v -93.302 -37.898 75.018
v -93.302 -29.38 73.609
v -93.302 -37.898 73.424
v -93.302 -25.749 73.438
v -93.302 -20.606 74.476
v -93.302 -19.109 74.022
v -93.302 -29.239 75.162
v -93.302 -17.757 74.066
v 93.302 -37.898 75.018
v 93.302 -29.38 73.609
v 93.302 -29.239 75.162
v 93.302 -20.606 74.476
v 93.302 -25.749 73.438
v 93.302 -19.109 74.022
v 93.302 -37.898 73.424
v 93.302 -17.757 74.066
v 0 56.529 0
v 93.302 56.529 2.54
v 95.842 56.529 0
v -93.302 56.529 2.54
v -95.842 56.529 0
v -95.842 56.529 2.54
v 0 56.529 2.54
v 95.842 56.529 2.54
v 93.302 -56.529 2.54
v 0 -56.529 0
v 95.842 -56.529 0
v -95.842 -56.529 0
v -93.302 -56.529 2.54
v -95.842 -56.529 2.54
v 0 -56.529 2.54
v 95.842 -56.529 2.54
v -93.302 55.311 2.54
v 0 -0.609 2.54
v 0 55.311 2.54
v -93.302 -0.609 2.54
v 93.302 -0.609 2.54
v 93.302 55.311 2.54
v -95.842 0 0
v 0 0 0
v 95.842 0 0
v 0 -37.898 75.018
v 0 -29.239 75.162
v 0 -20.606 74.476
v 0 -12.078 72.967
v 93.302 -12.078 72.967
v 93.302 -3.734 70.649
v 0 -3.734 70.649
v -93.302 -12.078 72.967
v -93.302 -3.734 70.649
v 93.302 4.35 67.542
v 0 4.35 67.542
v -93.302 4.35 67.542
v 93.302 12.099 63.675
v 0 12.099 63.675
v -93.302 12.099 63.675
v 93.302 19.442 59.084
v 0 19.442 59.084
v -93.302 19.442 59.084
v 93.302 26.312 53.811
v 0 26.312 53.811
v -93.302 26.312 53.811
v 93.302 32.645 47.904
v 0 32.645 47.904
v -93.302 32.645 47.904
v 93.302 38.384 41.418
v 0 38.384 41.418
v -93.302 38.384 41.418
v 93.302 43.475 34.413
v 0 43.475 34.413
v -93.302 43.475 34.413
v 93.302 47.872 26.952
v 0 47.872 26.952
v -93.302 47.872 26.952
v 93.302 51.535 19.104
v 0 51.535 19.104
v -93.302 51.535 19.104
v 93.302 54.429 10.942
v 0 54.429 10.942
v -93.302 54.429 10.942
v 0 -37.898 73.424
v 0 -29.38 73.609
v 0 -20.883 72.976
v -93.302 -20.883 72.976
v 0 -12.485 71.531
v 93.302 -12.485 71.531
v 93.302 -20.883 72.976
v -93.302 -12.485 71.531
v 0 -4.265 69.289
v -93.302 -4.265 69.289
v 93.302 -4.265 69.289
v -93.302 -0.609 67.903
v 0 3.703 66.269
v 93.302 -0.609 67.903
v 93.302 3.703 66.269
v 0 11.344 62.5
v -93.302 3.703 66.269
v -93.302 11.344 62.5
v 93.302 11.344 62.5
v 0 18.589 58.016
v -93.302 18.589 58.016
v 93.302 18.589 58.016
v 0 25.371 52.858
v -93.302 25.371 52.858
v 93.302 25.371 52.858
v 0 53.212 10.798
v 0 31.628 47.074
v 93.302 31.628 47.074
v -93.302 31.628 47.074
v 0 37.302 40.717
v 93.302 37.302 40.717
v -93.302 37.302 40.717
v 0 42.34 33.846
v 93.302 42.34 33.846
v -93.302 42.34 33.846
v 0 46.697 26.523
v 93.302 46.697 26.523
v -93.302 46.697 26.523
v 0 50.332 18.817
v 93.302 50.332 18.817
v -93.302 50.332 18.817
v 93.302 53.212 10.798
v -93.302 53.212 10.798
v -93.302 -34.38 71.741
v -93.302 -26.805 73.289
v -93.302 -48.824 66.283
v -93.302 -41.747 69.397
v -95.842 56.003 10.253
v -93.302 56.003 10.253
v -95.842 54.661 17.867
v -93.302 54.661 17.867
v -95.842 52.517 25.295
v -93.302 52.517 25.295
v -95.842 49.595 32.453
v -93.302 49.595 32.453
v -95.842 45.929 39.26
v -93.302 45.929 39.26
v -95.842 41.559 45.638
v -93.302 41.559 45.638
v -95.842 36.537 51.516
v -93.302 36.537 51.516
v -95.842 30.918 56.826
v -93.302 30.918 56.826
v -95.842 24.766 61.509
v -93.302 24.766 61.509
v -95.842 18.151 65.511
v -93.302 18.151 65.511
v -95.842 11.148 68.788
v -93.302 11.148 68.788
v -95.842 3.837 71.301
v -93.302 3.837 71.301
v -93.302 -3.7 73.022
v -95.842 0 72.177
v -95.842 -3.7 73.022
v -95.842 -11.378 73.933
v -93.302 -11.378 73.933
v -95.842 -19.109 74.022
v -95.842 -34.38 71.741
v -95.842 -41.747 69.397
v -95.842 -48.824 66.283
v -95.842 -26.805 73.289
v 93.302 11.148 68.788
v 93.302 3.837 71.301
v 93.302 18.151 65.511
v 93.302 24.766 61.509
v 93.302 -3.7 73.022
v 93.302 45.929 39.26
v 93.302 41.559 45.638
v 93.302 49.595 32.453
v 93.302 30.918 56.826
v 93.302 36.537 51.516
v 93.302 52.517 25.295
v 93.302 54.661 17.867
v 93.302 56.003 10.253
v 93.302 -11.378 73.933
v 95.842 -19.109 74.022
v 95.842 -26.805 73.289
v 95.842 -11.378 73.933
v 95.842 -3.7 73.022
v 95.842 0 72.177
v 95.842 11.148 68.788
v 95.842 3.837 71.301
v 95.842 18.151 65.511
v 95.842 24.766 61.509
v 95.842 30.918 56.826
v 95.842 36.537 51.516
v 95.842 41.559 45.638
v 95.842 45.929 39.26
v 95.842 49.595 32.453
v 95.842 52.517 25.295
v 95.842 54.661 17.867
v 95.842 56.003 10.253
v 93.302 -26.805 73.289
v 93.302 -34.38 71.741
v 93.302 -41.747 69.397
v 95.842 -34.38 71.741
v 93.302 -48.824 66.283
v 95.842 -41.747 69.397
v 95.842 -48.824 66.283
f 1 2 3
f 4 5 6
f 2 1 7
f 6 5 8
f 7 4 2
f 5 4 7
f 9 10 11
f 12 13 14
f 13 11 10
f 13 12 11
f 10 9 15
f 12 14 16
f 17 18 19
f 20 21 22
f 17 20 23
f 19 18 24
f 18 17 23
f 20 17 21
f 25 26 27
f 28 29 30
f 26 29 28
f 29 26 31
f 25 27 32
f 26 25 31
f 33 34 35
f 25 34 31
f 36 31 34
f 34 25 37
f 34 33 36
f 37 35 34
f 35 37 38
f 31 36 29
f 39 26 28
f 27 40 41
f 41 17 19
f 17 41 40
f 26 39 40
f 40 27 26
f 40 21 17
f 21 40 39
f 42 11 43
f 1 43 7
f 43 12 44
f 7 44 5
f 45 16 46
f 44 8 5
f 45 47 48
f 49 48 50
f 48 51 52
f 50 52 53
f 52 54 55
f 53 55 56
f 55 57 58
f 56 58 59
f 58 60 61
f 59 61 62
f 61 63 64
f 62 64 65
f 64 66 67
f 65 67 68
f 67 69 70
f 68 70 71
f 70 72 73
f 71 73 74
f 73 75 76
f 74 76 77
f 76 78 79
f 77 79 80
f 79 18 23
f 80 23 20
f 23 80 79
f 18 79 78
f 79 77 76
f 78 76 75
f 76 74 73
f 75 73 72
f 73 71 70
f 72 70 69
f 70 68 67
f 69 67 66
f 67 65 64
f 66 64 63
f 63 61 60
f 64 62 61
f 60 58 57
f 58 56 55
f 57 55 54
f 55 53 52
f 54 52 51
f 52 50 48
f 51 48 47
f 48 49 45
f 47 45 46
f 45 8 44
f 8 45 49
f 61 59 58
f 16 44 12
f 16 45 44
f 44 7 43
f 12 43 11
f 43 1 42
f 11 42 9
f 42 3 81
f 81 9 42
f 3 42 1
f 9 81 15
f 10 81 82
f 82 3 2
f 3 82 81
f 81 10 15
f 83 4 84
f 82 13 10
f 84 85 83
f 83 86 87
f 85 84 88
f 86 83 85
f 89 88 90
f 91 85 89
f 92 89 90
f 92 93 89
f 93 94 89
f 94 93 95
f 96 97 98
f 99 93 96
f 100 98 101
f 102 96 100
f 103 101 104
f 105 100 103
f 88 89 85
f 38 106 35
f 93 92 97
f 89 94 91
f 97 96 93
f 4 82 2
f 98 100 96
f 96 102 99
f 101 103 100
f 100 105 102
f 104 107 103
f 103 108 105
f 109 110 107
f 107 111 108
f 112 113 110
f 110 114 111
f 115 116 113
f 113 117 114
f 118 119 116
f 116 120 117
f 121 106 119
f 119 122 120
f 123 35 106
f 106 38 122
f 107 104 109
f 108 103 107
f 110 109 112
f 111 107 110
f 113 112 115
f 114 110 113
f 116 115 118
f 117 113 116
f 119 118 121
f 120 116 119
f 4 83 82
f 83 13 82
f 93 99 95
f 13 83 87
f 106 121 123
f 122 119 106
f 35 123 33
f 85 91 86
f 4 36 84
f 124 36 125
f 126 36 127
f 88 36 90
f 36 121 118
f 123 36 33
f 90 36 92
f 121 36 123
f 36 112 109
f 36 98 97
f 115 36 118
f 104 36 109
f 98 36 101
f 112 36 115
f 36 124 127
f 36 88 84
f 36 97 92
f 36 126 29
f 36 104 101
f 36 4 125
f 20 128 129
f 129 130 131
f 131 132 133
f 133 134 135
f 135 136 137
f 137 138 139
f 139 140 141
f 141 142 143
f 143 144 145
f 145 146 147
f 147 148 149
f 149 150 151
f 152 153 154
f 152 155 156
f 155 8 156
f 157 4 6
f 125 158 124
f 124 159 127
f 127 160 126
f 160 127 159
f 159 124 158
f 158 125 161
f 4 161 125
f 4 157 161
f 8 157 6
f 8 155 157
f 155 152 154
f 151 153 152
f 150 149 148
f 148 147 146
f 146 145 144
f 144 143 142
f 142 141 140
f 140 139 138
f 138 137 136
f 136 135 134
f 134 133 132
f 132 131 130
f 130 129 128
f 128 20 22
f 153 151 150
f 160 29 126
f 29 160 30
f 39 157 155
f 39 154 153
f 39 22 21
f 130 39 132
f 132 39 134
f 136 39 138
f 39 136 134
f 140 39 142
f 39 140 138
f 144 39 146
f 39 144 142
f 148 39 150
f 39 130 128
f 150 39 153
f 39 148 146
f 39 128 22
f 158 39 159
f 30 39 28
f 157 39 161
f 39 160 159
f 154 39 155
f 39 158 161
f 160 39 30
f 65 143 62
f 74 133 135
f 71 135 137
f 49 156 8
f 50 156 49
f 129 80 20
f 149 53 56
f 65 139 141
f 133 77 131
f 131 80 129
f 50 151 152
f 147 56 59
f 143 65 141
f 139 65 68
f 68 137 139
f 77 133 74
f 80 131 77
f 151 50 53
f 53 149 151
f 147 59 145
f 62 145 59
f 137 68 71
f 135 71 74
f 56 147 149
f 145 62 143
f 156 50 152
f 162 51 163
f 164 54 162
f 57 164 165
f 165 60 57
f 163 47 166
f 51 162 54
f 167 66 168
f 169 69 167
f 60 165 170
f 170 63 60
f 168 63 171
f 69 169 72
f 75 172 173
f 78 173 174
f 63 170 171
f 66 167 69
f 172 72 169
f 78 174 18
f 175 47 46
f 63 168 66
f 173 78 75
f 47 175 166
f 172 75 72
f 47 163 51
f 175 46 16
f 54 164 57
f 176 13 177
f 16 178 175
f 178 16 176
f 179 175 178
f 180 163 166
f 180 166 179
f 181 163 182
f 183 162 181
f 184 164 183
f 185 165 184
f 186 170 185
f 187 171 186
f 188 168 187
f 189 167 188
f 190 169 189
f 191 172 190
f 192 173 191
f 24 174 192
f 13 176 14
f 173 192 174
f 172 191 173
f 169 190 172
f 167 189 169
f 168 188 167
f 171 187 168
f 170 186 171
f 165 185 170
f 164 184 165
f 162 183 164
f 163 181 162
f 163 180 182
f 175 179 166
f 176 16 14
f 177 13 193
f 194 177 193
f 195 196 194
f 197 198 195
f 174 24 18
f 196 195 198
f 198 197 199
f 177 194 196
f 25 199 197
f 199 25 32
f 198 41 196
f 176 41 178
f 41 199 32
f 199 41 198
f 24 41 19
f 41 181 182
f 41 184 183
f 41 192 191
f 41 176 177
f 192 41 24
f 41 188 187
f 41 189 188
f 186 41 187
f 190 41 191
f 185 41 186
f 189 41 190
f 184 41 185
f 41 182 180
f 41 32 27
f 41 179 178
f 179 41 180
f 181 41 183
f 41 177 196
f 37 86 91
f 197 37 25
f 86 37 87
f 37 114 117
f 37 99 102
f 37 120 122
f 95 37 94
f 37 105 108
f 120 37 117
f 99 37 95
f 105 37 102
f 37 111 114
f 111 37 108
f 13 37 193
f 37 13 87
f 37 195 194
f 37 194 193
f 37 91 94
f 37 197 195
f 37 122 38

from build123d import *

# Parameters (mm, degrees)
SKETCH1_W           = 186.603203036
SKETCH1_H           = 113.057286536
BOSS_EXTRUDE1_DEPTH = 2.54
BOSS_EXTRUDE2_DEPTH = 186.603203
BOSS_EXTRUDE3_DEPTH = 2.54


with BuildPart() as part:
    # Sketch1 → Boss-Extrude1 (new body)
    with BuildSketch(Plane.XY):
        Rectangle(SKETCH1_W, SKETCH1_H)
    extrude(amount=BOSS_EXTRUDE1_DEPTH)

    # Sketch2 → Boss-Extrude2 (add)
    with BuildSketch(Plane.ZY.offset(93.301601518)):
        with BuildLine():
            Line((2.54, 56.528643268), (2.54, 55.310857912))
            ThreePointArc((2.54, 55.310857912), (55.518181309, 22.042232547), (73.424493654, -37.898180421))
            Line((73.424493654, -37.898180421), (75.017810549, -37.898180421))
            ThreePointArc((75.017810549, -37.898180421), (56.529746856, 22.939984252), (2.54, 56.528643268))
        make_face()
    extrude(amount=-BOSS_EXTRUDE2_DEPTH)

    # Sketch3 → Boss-Extrude3 (add)
    with BuildSketch(Plane.ZY.offset(93.301601518)):
        with BuildLine():
            Line((2.54, 56.528643268), (0, 56.528643268))
            Line((0, 56.528643268), (0, -56.528643268))
            Line((0, -56.528643268), (2.54, -56.528643268))
            Line((2.54, -56.528643268), (66.282828168, -48.823781984))
            ThreePointArc((66.282828168, -48.823781984), (63.598341423, 21.511799087), (2.54, 56.528643268))
        make_face()
    boss_extrude3 = extrude(amount=BOSS_EXTRUDE3_DEPTH)

    # Mirror1: Boss-Extrude3 across plane
    add(boss_extrude3.mirror(Plane(origin=(0, 0, 0), x_dir=(0, 0, 1), z_dir=(1, 0, 0))))


solid = part.part
